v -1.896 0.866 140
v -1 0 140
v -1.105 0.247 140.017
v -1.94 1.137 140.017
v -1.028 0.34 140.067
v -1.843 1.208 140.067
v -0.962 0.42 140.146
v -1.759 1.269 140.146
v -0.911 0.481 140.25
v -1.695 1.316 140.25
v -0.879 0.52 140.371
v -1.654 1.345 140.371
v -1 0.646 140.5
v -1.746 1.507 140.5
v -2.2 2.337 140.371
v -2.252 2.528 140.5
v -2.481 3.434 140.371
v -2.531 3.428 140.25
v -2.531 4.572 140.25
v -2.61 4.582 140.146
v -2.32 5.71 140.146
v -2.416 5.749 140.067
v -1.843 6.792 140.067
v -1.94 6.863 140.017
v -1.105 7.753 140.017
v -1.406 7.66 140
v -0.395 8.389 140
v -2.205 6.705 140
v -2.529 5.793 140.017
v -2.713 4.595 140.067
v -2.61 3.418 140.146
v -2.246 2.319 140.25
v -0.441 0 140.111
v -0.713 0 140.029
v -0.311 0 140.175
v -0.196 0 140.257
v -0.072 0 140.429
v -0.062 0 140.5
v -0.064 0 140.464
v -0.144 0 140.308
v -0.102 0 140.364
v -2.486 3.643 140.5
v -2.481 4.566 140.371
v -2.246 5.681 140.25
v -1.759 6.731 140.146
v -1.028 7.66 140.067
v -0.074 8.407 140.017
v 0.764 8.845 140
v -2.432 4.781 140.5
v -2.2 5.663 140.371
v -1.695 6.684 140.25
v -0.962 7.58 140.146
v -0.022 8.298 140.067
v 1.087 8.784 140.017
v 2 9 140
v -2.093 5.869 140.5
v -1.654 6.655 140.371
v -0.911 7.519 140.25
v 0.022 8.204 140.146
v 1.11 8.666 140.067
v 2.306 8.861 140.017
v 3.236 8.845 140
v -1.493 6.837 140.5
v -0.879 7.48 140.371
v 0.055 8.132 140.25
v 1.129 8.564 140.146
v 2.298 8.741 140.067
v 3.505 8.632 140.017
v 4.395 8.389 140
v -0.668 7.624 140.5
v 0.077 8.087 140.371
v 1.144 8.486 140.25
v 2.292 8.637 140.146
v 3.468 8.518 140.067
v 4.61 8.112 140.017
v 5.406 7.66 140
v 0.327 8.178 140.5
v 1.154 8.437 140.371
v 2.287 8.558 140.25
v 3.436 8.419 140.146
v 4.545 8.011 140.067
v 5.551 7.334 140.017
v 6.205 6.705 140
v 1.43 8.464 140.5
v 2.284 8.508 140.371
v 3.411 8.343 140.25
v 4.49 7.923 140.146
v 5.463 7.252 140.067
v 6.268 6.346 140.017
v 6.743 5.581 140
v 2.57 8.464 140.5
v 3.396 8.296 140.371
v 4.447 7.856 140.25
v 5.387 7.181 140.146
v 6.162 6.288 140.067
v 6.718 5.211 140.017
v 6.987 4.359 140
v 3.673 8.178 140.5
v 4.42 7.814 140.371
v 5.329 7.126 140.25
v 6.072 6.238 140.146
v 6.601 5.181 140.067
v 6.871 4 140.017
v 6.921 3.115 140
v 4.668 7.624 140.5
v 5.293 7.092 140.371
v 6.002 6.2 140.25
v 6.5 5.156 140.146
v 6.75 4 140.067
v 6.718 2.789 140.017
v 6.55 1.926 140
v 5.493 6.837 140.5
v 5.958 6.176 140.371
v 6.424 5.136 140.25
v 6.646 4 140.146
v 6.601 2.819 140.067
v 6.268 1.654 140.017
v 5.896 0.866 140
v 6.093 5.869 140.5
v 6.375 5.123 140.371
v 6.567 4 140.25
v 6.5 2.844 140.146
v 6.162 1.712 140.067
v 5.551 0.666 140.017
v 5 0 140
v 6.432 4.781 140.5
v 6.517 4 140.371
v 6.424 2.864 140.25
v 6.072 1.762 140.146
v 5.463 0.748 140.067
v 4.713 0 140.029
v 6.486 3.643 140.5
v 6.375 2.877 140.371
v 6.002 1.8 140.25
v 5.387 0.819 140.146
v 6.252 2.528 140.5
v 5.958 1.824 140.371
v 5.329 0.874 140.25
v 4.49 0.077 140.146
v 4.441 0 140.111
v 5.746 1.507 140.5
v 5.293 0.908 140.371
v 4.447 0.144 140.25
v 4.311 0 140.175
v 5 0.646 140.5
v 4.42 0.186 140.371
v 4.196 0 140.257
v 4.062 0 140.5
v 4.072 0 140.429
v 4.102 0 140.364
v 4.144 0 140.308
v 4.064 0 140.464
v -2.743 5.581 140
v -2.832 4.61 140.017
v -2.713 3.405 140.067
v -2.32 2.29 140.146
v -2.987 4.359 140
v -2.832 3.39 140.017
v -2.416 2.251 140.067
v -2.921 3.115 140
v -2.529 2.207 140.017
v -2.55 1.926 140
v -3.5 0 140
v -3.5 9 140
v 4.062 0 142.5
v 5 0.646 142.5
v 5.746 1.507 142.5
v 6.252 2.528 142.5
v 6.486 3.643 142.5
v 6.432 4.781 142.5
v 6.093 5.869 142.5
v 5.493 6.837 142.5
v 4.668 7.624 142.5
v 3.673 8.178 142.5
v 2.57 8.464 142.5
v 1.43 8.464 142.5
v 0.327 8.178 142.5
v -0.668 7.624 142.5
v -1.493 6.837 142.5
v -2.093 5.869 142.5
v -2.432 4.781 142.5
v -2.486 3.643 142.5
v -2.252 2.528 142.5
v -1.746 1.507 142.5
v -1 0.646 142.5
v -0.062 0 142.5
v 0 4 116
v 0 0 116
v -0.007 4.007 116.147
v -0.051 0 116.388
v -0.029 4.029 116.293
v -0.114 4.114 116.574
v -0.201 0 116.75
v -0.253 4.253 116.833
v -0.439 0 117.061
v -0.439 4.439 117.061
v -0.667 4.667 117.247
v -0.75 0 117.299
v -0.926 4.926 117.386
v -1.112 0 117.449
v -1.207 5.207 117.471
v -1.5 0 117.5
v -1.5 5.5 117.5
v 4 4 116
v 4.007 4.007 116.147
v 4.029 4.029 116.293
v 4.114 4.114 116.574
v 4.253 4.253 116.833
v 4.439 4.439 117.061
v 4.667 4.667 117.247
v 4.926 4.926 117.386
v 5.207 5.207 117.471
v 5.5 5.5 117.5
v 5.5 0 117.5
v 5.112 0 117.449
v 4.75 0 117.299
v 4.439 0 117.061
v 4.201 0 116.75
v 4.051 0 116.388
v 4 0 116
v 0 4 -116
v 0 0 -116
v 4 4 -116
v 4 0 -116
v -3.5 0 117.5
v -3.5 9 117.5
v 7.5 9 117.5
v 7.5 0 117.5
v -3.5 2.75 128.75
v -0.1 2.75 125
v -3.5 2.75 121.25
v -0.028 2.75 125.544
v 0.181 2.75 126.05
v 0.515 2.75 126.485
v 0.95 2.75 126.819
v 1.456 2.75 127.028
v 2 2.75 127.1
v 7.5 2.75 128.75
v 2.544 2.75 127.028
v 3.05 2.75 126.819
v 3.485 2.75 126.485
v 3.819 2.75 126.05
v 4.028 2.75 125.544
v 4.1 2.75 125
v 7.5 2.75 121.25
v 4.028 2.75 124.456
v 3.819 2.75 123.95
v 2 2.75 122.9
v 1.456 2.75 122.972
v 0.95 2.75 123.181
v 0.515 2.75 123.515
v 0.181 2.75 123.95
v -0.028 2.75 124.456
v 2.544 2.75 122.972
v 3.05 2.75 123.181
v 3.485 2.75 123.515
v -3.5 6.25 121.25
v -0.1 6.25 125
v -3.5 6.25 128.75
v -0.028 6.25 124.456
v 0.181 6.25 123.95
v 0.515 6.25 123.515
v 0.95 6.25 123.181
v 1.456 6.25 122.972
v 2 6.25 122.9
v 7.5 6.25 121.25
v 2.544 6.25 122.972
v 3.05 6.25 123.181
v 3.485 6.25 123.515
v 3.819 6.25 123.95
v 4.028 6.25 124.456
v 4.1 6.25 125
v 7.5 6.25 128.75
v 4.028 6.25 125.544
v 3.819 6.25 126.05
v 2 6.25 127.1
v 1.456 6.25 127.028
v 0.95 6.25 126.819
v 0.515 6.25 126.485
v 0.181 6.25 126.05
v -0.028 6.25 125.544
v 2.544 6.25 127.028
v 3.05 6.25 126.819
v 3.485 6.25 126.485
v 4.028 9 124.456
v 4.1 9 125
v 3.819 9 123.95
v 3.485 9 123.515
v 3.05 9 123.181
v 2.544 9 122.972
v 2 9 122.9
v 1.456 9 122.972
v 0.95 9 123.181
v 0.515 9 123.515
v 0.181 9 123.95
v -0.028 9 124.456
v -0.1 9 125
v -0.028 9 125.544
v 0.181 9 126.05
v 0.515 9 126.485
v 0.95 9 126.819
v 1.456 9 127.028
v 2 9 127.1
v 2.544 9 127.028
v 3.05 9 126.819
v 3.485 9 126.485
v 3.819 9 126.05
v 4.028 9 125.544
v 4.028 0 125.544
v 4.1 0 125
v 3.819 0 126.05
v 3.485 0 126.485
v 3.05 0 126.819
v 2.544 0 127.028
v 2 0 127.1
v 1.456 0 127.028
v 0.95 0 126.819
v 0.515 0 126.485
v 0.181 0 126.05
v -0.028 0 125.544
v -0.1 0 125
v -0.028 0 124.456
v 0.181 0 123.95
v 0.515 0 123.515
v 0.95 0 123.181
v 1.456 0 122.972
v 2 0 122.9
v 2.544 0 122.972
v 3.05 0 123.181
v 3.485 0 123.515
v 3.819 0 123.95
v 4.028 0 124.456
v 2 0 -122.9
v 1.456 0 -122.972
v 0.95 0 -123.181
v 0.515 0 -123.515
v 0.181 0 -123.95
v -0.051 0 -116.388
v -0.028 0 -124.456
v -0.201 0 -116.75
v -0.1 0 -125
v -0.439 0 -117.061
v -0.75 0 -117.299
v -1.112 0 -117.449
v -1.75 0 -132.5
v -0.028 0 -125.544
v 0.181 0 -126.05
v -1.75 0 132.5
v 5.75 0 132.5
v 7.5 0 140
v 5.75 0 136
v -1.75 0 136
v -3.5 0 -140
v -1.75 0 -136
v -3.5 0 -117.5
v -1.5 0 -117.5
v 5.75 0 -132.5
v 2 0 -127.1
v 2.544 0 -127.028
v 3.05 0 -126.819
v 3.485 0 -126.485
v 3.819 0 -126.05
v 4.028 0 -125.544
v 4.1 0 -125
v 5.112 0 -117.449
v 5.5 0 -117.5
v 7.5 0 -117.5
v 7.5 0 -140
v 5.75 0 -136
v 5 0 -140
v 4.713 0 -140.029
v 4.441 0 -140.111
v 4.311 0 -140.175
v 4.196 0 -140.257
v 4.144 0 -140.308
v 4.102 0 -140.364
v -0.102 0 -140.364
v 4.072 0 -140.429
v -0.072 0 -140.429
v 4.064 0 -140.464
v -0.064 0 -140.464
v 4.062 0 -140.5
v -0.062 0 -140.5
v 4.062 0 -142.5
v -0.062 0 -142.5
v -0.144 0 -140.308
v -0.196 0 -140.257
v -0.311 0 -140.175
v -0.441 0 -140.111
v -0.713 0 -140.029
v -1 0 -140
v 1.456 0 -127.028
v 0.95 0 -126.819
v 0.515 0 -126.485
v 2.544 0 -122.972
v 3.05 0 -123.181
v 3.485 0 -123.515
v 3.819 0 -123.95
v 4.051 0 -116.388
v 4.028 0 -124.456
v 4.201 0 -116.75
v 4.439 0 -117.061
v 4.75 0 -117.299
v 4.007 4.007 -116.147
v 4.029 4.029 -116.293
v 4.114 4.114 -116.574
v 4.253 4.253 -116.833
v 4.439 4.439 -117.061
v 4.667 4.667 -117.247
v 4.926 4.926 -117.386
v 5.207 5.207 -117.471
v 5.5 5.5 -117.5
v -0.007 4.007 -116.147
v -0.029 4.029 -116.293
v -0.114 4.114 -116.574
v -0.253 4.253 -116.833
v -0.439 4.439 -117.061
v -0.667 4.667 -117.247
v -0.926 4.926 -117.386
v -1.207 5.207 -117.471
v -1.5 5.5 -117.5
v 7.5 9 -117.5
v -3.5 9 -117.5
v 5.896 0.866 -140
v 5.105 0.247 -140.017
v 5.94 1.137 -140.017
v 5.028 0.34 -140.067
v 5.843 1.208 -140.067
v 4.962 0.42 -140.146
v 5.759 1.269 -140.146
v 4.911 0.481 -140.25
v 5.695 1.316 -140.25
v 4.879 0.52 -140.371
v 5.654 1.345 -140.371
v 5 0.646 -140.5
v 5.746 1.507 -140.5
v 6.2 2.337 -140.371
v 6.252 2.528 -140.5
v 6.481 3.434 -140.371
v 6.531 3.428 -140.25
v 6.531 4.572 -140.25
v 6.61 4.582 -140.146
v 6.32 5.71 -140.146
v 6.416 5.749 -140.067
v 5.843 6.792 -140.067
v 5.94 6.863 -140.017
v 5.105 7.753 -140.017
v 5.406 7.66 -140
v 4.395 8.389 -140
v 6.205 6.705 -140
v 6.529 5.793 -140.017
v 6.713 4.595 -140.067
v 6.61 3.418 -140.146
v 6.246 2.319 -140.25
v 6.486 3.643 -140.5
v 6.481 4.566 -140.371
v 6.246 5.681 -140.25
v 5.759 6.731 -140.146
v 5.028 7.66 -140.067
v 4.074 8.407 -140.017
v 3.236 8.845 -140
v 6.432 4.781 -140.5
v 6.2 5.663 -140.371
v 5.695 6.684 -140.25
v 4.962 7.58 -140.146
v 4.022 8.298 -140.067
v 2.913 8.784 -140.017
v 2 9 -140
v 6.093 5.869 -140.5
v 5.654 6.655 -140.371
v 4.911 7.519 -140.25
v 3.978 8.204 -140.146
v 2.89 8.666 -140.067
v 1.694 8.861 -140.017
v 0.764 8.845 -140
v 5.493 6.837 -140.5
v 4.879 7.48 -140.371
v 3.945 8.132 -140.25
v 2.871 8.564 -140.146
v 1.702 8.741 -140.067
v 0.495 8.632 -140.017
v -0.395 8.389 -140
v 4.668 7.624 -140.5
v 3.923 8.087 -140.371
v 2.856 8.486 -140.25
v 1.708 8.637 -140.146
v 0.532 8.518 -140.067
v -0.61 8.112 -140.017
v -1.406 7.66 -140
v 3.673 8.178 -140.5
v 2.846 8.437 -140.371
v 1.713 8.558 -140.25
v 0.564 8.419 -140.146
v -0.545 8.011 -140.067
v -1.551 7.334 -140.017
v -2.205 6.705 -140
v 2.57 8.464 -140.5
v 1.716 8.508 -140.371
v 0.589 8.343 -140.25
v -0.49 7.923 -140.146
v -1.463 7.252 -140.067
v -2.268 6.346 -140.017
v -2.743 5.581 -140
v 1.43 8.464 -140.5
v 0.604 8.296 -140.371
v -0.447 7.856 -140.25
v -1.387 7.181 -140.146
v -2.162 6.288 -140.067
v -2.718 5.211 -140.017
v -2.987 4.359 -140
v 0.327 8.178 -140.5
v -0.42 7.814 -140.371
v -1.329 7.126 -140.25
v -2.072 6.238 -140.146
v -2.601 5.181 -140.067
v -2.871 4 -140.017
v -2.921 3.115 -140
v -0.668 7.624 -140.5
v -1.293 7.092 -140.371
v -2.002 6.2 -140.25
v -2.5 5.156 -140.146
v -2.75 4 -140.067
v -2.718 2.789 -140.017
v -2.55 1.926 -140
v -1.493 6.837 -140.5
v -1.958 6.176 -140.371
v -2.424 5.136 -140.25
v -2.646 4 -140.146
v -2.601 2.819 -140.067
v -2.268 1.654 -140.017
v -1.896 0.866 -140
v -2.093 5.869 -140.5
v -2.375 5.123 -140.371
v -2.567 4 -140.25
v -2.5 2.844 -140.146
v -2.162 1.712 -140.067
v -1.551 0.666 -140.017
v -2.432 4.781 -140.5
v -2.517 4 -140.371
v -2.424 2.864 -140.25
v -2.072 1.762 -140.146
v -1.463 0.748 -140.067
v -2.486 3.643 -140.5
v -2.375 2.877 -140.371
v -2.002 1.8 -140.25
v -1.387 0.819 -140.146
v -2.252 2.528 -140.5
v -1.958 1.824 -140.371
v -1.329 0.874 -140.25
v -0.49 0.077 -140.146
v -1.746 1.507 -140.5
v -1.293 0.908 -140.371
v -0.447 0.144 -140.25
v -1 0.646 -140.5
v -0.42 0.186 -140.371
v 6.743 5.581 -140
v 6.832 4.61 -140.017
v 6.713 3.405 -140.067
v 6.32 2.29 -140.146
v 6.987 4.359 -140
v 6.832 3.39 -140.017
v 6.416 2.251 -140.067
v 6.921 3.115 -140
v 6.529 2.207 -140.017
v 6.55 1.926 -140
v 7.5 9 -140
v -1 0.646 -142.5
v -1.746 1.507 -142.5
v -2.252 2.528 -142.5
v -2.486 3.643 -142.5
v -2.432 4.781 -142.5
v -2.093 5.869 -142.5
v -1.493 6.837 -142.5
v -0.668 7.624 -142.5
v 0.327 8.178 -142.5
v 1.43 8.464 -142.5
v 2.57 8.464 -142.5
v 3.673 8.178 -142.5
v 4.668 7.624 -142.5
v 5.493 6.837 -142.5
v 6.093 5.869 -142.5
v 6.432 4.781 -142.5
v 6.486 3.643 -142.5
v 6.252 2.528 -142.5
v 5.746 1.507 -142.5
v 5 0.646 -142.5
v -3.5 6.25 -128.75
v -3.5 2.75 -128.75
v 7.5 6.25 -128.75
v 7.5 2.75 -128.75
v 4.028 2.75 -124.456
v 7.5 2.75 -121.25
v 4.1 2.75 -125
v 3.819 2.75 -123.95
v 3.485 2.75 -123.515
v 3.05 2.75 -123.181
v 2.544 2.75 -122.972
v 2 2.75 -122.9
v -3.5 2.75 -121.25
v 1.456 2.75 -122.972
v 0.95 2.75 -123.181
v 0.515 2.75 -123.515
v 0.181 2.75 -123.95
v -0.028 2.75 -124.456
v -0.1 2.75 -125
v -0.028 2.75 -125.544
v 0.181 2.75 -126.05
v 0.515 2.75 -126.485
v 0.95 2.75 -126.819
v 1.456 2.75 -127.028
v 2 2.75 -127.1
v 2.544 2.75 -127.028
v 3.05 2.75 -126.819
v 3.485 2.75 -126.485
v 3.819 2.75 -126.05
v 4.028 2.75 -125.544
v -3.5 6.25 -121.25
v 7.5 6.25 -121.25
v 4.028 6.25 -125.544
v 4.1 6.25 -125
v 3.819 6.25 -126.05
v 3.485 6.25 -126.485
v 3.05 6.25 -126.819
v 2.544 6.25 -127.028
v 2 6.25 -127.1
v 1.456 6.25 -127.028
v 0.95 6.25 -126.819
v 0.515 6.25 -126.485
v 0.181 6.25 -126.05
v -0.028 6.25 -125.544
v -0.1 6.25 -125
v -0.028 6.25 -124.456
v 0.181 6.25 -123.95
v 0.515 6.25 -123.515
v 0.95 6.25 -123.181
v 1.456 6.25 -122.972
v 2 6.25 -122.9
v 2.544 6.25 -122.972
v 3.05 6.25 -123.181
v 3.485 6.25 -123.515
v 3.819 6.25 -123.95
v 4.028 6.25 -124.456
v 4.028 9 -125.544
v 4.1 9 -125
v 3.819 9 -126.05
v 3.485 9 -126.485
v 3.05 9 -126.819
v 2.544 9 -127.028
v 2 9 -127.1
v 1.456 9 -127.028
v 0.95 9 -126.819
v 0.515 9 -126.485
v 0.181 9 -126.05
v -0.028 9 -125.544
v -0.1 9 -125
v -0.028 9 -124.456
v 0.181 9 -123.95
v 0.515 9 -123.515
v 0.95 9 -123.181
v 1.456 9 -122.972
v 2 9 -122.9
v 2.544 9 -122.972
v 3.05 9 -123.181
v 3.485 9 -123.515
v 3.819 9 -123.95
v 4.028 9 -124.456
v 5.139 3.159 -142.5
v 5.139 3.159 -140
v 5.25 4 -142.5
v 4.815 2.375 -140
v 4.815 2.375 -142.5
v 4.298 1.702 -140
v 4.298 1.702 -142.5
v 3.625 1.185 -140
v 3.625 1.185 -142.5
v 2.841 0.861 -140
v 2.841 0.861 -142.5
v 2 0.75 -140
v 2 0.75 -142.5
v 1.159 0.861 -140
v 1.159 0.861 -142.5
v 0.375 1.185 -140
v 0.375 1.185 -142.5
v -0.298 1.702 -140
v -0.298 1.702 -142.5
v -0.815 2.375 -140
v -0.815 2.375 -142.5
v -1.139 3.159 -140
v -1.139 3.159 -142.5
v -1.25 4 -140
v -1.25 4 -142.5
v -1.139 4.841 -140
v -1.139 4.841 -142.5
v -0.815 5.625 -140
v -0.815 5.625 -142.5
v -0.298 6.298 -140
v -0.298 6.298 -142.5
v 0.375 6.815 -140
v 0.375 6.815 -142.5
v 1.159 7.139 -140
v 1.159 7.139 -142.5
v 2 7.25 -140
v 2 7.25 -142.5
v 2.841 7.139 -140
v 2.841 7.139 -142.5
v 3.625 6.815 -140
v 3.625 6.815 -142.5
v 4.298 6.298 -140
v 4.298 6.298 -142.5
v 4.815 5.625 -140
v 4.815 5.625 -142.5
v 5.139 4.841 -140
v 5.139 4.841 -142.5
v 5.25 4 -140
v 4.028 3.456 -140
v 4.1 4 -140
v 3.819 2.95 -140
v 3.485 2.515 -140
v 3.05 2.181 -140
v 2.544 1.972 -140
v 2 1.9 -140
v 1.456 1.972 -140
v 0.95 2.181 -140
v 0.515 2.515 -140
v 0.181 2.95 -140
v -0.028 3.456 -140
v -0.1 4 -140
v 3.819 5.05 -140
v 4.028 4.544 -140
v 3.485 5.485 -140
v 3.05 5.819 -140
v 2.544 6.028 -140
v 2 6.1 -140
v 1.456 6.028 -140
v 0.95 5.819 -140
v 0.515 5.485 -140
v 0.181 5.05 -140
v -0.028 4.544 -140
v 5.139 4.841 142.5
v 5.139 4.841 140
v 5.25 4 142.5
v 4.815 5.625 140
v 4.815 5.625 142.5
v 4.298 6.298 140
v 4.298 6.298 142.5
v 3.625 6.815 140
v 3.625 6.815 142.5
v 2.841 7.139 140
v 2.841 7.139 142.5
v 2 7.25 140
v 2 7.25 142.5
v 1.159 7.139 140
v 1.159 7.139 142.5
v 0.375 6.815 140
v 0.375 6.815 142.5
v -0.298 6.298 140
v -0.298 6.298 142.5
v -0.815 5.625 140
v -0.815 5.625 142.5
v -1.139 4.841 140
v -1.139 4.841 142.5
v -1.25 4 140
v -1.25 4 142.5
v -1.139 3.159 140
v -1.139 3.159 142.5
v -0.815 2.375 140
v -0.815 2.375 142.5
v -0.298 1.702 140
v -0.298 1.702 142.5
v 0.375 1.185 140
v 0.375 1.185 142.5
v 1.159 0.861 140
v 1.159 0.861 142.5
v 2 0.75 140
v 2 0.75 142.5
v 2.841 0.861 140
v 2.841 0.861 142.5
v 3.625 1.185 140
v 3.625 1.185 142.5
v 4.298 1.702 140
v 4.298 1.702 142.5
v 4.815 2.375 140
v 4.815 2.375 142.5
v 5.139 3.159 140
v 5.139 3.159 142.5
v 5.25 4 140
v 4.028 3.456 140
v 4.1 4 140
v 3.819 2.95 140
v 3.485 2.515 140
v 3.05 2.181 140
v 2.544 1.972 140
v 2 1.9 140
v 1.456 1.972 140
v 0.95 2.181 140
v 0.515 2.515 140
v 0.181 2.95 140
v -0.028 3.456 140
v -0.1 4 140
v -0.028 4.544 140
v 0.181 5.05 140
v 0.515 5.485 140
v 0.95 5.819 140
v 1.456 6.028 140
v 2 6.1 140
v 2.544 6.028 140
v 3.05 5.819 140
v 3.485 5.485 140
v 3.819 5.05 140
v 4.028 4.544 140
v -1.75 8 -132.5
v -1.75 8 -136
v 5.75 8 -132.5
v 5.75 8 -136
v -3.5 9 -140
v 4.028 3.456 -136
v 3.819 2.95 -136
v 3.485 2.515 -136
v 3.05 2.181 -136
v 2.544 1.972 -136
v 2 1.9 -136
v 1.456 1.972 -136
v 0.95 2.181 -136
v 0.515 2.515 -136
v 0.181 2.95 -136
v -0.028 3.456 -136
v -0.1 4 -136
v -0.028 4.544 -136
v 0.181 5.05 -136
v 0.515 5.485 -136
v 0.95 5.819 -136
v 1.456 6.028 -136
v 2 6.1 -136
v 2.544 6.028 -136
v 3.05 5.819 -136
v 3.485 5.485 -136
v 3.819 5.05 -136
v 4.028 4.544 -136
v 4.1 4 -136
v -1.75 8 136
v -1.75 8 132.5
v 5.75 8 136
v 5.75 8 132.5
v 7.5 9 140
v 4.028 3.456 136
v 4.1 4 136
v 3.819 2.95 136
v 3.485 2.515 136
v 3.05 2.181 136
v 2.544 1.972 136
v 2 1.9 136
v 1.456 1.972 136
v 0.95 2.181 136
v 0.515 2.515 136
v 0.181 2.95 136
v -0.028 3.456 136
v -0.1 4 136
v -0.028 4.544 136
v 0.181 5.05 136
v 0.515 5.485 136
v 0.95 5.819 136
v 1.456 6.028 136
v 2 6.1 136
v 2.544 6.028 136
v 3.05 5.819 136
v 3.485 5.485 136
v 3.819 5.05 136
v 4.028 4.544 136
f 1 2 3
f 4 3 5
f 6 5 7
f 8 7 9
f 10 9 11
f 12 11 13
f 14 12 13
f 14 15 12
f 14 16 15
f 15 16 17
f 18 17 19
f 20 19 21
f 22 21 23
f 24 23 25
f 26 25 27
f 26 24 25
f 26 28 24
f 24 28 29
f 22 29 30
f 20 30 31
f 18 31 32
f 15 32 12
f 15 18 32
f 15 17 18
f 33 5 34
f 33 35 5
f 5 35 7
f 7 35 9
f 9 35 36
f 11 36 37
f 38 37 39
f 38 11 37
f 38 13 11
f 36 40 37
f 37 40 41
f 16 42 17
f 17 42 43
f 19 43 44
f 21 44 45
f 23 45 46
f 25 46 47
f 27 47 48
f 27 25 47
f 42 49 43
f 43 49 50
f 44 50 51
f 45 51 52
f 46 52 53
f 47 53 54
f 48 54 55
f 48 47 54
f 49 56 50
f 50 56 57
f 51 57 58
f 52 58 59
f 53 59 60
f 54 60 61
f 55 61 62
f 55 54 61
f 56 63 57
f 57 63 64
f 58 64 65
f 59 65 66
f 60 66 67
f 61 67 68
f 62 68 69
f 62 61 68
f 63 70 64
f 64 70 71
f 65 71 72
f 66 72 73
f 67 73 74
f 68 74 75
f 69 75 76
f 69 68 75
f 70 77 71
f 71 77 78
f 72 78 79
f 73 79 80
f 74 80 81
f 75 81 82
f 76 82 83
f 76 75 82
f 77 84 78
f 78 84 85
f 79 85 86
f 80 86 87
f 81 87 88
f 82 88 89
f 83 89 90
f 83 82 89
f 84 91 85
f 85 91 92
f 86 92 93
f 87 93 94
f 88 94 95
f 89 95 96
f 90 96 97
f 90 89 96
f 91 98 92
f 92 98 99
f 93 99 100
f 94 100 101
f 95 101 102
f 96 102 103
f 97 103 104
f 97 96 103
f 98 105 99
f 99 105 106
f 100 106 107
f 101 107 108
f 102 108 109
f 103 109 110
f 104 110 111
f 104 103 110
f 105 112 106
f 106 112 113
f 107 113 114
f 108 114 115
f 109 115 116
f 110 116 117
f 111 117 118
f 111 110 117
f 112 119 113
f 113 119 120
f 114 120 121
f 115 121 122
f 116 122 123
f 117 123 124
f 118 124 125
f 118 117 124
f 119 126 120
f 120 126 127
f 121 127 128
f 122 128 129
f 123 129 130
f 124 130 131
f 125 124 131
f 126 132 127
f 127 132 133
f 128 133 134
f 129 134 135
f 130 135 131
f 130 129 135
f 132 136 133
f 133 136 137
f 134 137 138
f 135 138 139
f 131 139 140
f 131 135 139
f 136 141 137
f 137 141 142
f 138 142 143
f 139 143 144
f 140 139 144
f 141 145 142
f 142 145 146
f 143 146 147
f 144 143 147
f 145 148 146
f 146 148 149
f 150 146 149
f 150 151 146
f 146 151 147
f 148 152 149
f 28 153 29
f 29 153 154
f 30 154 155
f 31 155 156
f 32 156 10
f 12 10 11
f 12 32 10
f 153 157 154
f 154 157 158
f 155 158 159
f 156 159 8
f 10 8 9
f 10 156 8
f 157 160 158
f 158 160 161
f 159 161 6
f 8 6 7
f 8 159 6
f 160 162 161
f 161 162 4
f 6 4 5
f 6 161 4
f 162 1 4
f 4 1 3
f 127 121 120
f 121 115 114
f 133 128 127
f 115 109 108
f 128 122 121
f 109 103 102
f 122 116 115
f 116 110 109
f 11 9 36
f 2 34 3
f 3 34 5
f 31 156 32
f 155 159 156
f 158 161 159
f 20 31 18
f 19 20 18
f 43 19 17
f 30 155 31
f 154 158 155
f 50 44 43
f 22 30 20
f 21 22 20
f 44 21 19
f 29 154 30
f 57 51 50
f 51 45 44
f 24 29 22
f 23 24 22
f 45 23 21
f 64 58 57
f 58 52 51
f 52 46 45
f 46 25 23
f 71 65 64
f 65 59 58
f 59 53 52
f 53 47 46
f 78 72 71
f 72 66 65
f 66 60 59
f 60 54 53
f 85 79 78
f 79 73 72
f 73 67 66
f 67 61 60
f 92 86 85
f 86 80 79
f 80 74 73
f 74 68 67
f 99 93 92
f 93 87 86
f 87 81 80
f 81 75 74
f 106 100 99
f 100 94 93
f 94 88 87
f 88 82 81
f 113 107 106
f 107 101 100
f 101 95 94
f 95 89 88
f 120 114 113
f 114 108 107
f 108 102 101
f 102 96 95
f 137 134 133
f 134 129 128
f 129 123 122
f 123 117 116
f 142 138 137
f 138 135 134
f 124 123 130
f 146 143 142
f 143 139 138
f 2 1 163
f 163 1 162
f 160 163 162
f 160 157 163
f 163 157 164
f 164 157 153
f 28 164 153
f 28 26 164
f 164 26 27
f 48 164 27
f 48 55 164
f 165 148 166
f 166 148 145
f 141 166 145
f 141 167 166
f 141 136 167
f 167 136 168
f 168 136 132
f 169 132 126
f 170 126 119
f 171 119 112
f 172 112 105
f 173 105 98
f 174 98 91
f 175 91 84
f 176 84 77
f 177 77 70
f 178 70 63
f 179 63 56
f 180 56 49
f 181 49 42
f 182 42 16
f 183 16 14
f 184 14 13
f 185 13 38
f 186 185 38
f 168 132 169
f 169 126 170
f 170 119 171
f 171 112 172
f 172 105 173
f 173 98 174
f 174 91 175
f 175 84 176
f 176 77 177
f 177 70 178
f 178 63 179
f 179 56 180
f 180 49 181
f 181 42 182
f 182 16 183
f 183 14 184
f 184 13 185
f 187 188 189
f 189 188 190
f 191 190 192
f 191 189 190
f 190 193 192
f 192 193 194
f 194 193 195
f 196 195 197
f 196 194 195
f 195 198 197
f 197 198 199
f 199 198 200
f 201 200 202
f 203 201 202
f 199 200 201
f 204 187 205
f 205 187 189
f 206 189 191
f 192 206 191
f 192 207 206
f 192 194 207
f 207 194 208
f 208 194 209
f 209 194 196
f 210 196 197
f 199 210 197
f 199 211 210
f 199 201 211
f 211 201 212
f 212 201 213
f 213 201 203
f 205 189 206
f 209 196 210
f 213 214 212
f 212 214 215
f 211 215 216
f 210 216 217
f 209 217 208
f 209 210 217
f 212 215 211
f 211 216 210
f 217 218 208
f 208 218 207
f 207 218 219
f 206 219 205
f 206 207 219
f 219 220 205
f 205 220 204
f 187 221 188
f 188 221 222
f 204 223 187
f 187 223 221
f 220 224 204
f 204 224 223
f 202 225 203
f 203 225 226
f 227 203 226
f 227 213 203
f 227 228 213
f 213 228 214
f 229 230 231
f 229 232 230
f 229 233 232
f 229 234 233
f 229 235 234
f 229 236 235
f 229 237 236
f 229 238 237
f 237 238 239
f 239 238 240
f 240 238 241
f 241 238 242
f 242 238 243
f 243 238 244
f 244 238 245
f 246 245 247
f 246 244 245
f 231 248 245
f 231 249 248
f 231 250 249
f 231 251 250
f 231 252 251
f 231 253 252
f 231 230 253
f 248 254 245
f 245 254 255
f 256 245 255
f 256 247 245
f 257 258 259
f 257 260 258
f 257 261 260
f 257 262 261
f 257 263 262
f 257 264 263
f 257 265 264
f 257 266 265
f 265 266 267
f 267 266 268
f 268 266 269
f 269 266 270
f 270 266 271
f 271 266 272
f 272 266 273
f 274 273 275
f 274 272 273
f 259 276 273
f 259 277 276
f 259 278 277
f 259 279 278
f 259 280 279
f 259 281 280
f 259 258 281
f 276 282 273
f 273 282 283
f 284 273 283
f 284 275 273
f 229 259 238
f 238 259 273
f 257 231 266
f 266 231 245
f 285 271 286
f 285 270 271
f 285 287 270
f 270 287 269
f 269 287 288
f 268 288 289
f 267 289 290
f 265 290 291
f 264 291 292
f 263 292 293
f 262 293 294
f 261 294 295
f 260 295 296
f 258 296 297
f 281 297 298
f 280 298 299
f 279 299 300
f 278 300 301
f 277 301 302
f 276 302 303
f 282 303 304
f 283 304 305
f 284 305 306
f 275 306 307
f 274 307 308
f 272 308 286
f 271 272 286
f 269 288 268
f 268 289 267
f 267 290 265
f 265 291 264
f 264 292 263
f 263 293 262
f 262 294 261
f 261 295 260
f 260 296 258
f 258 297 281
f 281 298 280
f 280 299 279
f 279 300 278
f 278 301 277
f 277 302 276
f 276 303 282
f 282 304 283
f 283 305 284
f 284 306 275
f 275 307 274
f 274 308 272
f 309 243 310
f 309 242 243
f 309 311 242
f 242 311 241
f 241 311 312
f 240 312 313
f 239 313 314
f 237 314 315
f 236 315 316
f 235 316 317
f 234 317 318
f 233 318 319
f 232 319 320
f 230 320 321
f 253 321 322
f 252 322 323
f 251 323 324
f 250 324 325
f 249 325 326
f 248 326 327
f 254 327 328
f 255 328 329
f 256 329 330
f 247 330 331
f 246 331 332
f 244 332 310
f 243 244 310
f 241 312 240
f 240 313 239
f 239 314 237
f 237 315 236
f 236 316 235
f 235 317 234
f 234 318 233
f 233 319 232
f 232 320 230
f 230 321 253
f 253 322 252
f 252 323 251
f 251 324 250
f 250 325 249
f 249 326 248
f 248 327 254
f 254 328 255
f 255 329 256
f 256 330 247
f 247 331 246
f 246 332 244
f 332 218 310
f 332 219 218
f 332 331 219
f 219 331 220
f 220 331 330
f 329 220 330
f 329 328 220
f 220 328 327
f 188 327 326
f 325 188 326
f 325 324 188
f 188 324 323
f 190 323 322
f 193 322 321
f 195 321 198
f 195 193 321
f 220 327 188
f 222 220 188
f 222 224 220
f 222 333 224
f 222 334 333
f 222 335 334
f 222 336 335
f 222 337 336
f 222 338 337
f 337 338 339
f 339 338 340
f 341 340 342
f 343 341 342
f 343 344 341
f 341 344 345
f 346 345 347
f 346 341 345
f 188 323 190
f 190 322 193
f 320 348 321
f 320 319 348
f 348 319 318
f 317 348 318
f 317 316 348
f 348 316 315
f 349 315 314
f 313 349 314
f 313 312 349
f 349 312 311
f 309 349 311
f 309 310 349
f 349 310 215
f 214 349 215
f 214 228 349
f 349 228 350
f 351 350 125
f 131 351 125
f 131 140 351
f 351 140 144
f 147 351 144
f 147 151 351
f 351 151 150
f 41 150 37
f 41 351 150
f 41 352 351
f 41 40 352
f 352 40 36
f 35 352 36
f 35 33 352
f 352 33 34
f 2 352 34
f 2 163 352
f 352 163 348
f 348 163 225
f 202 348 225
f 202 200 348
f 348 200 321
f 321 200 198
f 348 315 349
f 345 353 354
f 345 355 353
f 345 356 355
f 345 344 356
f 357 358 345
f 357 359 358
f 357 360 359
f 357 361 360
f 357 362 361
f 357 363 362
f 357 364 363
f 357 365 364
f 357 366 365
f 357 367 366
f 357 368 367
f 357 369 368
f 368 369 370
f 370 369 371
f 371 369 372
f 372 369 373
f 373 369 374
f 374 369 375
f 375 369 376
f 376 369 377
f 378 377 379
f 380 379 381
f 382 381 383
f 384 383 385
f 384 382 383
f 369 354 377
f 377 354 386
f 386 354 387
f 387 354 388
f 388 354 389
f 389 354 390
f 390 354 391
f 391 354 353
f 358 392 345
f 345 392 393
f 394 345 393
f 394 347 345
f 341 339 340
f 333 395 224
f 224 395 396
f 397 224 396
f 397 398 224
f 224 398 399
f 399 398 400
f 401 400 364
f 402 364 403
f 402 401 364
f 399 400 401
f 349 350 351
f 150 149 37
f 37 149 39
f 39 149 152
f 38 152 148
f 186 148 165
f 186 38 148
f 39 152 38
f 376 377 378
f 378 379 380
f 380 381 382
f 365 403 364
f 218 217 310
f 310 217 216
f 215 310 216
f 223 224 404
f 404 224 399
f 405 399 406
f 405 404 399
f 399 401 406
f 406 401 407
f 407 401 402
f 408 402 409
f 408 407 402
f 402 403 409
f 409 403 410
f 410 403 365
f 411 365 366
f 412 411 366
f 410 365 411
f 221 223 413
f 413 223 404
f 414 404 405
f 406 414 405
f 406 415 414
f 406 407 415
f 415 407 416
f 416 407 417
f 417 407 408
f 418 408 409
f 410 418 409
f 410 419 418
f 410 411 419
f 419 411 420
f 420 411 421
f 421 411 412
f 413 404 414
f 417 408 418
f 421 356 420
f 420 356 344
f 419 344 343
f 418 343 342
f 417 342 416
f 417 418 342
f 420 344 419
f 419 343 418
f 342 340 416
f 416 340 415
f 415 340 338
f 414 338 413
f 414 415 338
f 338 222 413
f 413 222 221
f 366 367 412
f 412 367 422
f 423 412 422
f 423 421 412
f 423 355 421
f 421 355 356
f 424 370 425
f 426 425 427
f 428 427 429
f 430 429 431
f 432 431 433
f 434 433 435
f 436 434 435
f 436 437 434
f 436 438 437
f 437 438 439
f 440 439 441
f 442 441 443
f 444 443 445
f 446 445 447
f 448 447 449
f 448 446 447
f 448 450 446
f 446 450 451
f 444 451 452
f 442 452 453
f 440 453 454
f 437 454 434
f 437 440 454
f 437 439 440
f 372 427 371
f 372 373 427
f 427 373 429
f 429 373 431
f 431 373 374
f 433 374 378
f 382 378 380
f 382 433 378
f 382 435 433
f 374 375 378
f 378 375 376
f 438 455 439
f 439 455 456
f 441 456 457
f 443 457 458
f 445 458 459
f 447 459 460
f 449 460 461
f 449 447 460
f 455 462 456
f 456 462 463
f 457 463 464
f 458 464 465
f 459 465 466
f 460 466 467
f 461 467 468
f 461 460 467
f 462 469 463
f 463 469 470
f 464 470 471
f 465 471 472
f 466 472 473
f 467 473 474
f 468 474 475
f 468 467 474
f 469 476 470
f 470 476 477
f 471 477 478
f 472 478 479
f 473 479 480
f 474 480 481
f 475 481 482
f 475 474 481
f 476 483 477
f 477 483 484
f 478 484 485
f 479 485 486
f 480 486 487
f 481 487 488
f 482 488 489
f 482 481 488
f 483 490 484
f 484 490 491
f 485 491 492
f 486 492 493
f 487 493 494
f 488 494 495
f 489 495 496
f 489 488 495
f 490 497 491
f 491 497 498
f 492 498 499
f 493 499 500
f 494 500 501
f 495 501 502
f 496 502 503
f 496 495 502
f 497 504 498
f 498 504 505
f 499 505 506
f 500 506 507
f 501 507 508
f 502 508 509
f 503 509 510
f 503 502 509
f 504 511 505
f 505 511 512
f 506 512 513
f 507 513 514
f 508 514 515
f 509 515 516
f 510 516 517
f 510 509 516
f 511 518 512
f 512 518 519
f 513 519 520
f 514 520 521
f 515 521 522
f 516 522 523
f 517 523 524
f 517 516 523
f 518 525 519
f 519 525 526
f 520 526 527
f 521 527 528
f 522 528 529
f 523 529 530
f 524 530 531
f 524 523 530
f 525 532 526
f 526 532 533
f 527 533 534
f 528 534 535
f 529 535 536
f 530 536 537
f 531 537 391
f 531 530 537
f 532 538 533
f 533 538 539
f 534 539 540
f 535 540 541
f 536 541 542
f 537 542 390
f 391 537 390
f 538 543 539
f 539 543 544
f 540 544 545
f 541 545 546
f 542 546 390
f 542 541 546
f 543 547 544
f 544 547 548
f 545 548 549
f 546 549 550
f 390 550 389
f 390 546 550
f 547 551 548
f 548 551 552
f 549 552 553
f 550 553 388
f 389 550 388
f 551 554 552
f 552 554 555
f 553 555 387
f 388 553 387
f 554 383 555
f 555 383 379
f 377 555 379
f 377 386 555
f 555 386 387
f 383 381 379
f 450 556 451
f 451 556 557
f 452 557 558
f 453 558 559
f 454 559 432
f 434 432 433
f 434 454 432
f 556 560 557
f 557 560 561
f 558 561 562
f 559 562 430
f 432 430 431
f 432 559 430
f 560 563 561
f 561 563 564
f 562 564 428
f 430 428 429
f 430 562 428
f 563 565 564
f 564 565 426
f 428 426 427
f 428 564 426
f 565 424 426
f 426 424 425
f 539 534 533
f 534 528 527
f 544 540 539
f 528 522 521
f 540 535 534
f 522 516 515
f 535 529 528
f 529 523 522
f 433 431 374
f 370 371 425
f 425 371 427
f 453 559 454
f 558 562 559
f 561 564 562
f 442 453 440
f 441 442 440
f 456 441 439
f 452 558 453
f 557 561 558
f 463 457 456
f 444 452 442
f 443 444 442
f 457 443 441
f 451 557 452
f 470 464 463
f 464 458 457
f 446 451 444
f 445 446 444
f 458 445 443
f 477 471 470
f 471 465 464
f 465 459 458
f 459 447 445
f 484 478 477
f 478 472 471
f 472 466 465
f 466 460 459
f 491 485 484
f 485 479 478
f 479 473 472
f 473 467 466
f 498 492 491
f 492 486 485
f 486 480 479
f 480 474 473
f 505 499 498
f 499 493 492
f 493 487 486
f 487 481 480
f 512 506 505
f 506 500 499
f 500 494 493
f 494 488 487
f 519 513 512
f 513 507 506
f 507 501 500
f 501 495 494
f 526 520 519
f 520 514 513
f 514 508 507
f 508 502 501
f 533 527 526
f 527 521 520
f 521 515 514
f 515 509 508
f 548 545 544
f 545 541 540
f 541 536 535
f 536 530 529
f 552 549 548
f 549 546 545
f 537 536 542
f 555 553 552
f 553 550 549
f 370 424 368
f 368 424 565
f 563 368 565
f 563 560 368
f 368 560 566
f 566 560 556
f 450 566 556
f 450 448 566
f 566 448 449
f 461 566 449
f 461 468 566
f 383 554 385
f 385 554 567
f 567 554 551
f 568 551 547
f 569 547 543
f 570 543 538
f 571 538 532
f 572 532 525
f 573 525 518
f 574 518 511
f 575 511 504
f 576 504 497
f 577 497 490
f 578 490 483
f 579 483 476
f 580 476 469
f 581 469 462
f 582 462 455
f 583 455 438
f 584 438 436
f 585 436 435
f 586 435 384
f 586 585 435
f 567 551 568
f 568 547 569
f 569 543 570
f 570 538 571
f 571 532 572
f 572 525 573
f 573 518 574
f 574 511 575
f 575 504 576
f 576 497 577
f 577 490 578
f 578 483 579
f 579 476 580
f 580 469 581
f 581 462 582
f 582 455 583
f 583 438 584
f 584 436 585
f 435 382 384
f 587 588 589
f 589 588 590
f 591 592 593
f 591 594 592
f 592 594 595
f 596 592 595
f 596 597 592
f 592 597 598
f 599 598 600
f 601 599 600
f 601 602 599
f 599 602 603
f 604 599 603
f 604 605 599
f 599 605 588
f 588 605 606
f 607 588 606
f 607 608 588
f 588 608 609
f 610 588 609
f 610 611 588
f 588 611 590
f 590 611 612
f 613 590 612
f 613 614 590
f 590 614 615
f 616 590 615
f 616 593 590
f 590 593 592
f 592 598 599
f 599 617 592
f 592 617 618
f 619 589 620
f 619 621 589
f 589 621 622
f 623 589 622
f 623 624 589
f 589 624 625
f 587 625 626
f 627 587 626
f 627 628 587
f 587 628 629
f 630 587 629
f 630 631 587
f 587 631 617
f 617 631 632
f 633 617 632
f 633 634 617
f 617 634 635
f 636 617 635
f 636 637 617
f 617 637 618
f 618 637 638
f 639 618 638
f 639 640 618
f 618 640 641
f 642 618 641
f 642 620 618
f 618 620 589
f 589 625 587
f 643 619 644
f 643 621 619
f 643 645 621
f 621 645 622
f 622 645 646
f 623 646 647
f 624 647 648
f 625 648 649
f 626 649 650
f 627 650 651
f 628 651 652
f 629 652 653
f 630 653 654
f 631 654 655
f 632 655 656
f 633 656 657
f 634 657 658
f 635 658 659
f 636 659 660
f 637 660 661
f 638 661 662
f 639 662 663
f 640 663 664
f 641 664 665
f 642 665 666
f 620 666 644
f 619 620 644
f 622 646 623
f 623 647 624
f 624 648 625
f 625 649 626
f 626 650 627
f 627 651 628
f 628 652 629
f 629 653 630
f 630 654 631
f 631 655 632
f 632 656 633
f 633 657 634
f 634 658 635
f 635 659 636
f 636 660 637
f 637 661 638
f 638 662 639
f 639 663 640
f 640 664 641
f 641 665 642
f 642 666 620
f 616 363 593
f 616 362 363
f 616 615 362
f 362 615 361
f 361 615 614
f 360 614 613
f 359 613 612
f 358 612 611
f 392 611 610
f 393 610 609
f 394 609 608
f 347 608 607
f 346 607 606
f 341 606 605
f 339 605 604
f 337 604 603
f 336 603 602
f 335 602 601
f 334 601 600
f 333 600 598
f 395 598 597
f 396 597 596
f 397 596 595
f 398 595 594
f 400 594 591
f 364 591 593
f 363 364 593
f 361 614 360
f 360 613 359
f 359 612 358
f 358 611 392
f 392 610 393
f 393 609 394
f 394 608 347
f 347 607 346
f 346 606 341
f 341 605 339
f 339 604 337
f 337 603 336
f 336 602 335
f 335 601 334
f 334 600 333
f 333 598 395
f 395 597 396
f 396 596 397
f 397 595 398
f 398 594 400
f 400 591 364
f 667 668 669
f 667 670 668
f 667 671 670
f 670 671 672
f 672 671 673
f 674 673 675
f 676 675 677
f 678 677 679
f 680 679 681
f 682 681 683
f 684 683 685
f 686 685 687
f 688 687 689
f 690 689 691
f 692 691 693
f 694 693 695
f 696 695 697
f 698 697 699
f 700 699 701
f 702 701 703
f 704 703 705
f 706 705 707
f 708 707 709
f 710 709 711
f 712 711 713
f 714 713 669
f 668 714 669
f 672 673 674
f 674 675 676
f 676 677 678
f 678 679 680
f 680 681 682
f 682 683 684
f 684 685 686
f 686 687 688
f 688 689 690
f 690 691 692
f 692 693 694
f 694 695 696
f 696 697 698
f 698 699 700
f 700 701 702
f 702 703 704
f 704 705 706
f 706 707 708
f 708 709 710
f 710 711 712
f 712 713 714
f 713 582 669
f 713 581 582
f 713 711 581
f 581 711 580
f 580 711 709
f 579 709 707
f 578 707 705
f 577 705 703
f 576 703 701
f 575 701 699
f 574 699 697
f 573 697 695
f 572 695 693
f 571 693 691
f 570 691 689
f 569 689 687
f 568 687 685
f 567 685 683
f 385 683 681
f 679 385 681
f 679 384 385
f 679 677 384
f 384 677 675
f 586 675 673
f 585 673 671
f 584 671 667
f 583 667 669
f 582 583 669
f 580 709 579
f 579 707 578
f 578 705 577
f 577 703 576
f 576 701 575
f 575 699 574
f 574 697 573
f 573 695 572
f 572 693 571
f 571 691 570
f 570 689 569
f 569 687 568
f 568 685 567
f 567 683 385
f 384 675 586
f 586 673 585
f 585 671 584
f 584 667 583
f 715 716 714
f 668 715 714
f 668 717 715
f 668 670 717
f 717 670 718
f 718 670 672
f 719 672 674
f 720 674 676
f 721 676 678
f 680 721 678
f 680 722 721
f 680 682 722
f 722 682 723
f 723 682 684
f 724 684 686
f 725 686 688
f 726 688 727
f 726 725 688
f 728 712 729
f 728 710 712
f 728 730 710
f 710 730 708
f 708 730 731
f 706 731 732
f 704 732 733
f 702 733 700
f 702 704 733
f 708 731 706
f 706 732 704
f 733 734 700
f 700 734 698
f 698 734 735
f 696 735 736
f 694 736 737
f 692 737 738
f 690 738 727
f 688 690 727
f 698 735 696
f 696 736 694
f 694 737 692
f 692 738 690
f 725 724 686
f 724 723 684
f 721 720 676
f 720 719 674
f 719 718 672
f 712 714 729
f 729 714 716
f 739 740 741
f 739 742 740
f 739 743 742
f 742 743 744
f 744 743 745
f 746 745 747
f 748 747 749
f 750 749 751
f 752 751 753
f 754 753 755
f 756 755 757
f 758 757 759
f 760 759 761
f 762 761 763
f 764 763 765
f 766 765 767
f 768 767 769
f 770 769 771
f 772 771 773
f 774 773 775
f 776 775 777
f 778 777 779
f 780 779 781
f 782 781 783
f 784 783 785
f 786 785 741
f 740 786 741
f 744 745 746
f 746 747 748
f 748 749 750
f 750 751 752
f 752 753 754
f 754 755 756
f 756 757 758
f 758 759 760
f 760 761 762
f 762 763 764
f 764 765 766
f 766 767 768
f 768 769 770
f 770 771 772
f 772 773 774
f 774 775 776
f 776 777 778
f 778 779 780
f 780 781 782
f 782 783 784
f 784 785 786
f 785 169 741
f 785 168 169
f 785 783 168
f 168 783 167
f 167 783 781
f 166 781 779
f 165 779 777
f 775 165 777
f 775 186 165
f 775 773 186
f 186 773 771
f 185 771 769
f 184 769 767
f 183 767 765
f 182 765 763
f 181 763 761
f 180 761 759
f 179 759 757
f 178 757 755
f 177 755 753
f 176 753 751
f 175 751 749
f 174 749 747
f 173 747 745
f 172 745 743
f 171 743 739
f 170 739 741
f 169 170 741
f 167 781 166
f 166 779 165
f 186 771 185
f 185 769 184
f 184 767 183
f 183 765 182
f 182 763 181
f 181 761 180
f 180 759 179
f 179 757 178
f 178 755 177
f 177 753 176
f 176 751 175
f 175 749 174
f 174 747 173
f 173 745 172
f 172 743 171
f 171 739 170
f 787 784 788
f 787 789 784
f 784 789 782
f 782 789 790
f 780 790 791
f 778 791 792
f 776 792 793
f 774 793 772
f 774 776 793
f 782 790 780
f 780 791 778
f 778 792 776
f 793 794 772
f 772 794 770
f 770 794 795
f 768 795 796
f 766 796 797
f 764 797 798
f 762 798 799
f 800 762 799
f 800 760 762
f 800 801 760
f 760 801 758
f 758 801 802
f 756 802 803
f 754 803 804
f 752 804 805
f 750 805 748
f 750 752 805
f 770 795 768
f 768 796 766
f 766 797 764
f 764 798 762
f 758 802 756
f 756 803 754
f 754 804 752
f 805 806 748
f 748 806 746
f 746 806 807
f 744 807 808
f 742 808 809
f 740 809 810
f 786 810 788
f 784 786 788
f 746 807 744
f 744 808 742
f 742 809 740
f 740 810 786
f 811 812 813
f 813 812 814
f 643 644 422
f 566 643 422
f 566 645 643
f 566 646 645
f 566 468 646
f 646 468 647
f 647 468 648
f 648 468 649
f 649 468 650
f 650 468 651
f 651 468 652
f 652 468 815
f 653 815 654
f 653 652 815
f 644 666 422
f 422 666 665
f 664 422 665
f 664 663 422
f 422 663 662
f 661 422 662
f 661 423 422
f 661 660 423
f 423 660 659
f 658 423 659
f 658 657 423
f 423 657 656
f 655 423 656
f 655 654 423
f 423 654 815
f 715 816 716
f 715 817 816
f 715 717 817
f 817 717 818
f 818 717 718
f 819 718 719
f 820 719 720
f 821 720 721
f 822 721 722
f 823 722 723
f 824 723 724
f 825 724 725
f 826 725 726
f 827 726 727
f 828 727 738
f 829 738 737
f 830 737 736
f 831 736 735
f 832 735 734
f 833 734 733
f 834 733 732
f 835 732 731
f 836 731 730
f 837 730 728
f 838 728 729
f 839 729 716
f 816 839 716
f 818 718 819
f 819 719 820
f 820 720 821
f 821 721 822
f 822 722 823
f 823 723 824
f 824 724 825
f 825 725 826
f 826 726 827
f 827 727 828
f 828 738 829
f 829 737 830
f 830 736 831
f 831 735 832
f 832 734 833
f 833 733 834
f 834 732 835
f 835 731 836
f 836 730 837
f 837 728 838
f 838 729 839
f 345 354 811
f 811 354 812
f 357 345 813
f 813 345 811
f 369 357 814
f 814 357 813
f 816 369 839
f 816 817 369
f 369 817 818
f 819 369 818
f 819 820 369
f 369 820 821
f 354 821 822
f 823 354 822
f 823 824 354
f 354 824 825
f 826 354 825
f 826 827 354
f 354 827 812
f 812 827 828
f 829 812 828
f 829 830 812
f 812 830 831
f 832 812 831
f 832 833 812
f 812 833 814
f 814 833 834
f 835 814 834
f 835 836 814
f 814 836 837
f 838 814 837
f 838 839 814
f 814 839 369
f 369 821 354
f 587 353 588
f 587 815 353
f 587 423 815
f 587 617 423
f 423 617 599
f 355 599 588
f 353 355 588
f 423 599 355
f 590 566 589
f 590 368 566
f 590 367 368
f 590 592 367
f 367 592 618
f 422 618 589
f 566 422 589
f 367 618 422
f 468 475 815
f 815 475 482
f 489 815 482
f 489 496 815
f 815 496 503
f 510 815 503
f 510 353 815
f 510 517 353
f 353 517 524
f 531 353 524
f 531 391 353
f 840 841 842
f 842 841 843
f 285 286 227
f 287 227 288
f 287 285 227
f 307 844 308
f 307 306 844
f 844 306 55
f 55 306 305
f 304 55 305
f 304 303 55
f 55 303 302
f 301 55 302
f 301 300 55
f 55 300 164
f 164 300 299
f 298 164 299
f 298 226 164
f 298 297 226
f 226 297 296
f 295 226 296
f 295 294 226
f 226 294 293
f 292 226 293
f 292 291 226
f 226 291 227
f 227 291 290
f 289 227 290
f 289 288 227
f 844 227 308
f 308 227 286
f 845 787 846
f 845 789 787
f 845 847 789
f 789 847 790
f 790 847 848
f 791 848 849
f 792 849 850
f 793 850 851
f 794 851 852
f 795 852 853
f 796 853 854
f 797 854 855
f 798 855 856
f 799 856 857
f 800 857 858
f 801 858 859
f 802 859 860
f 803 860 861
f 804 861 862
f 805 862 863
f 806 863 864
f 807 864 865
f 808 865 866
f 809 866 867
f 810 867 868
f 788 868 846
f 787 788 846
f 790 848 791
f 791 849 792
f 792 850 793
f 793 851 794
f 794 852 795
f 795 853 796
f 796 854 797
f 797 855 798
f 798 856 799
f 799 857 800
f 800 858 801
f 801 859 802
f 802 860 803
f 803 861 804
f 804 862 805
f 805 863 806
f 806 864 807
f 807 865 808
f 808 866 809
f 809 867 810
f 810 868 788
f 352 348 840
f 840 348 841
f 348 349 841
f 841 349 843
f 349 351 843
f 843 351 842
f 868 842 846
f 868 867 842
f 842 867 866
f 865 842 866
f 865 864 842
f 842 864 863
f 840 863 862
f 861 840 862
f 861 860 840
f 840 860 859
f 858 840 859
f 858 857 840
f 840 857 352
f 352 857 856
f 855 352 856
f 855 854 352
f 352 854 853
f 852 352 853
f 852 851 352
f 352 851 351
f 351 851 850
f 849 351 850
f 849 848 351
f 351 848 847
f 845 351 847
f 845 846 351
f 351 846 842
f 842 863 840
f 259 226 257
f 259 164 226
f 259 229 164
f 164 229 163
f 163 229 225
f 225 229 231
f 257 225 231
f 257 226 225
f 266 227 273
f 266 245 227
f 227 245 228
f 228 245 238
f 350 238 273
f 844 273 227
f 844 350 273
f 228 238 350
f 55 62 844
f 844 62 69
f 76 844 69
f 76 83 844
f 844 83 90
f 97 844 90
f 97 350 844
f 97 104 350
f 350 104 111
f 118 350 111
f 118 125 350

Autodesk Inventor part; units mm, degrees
ref_plane "YZ Plane" through (0, 0, 0) normal (1, 0, 0) x (0, 1, 0)
ref_plane "XZ Plane" through (0, 0, 0) normal (0, 1, 0) x (-1, 0, 0)
ref_plane "XY Plane" through (0, 0, 0) normal (0, 0, 1) x (1, 0, 0)
sketch "Sketch1" plane through (0, 0, 0) normal (0, 0, 1) x (1, 0, 0)
  line L0 (0, 0) -> (4, 0)
  line L1 (4, 0) -> (4, 4)
  line L2 (4, 4) -> (0, 4)
  line L3 (0, 4) -> (0, 0)
  dimension "d0" = 4
  dimension "d1" = 4
extrude "Extrusion1" add sketch "Sketch1" along normal blind 128.5
sketch "Sketch3" plane through (0, 0, 128.5) normal (0, 0, 1) x (1, 0, 0)
  line L0 (0, 0) -> (4, 0) projected
  line L1 (-3.5, 0) -> (7.5, 0)
  line L2 (7.5, 0) -> (7.5, 8)
  line L3 (7.5, 8) -> (-3.5, 8)
  line L4 (-3.5, 8) -> (-3.5, 0)
  point P0 (2, 0)
  dimension "d4" = 11
  dimension "d5" = 8
extrude "Extrusion2" add sketch "Sketch3" along normal blind 11.5
sketch "Sketch4" plane through (0, 0, 0) normal (0, -1, 0) x (1, 0, 0)
  line L0 (7.5, 128.5) -> (7.5, 140) projected
  line L1 (-3.5, 140) -> (7.5, 140) projected
  line L2 (-1.75, 136) -> (5.75, 136)
  line L3 (5.75, 136) -> (5.75, 132.5)
  line L4 (5.75, 132.5) -> (-1.75, 132.5)
  line L5 (-1.75, 132.5) -> (-1.75, 136)
  point P0 (2, 136)
  point P1 (2, 140)
  point P2 (5.75, 134.25)
  point P3 (7.5, 134.25)
  dimension "d8" = 7.5
  dimension "d9" = 3.5
extrude "Extrusion3" cut sketch "Sketch4" against normal blind 8
sketch "Sketch5" plane through (0, 0, 140) normal (0, 0, 1) x (1, 0, 0)
  circle A0 centre (2, 4) radius 2.1
  point P0 (0, 0)
  dimension "d12" = 4.2
extrude "Extrusion4" cut sketch "Sketch5" against normal up to surface (7.5 mm away)
sketch "Sketch6" plane through (-3.5, 8, 128.5) normal (0, 1, 0) x (1, 0, 0)
  line L0 (11, 0) -> (0, 0) projected
  line L1 (0, 0) -> (0, -11.5) projected
  line L2 (11, -11.5) -> (0, -11.5) projected
  line L3 (11, 0) -> (11, -11.5) projected
  point P0 (3.5, 128.5)
extrude "Extrusion5" add sketch "Sketch6" along normal blind 1
mirror "Mirror2" about plane through (0, 0, 0) normal (0, 0, 1) of "Extrusion1", "Extrusion5", "Extrusion2", "Extrusion3", "Extrusion4"
sketch "Sketch7" plane through (0, 0, 140) normal (0, 0, 1) x (1, 0, 0)
  line L0 (-3.5, 0) -> (7.5, 0) projected
  arc A0 (4.0616, 0) -> (-0.0616, 0) centre (2, 4) ccw
  line L1 (0, 0) -> (-0.0616, 0)
  line L2 (-0.0616, 0) -> (4.0616, 0)
  circle A1 centre (2, 4) radius 3.25
  dimension "d17" = 9
  dimension "d18" = 6.5
extrude "Extrusion6" add sketch "Sketch7" along normal blind 2.5
sketch "Sketch8" plane through (-3.5, 8, 128.5) normal (0, -1, 0) x (1, 0, 0)
  line L0 (1.75, 7.5) -> (1.75, 4) projected
  line L1 (1.75, 4) -> (9.25, 4) projected
  line L2 (9.25, 4) -> (9.25, 7.5) projected
  line L3 (9.25, 7.5) -> (1.75, 7.5) projected
  point P0 (3.5, -128.5)
mirror "Mirror3" about plane through (0, 0, 0) normal (0, 0, 1) of "Extrusion6"
sketch "Sketch10" plane through (-3.5, 9, -128.5) normal (0, 1, 0) x (1, 0, 0)
  line L0 (0, 0) -> (11, 0)
  line L1 (11, 0) -> (11, -9)
  line L2 (11, -9) -> (0, -9)
  line L3 (0, -9) -> (0, 0)
  point P0 (3.5, -128.5)
  dimension "d21" = 9
extrude "Extrusion7" add sketch "Sketch10" against normal up to surface (9 mm away)
sketch "Sketch11" plane through (-3.5, 9, -140) normal (0, 1, 0) x (1, 0, 0)
  line L0 (11, -20.5) -> (0, -20.5) projected
  circle A0 centre (5.5, -15) radius 2.1
  point P0 (3.5, -140)
  dimension "d24" = 4.2
  dimension "d25" = 5.5
extrude "Extrusion8" cut sketch "Sketch11" against normal blind 11
sketch "Sketch12" plane through (-3.5, 0, -140) normal (-1, 0, 0) x (0, 0, 1)
  line L0 (20.5, 9) -> (20.5, 0) projected
  line L1 (18.75, 6.25) -> (11.25, 6.25)
  line L2 (11.25, 6.25) -> (11.25, 2.75)
  line L3 (11.25, 2.75) -> (18.75, 2.75)
  line L4 (18.75, 2.75) -> (18.75, 6.25)
  point P0 (140, 0)
  point P1 (18.75, 4.5)
  point P2 (20.5, 4.5)
  dimension "d28" = 7.5
  dimension "d29" = 3.5
  dimension "d30" = 1.75
extrude "Extrusion9" cut sketch "Sketch12" against normal blind 11
fillet "Fillet3" radius 0.5 1 edges at (2, 8.5, -140)
sketch "Sketch14" plane through (-3.5, 9, -119.5) normal (0, 0, 1) x (1, 0, 0)
  line L0 (7.5, -9) -> (7.5, -5) projected
  line L1 (7.5, -9) -> (11, -9) projected
  line L2 (11, 0) -> (11, -9) projected
  line L3 (11, 0) -> (0, 0) projected
  line L4 (0, 0) -> (0, -9) projected
  line L5 (0, -9) -> (3.5, -9) projected
  line L6 (3.5, -5) -> (3.5, -9) projected
  line L7 (7.5, -5) -> (3.5, -5) projected
extrude "Extrusion10" add sketch "Sketch14" along normal blind 2
fillet "Fillet4" radius 1.5 3 edges at (4, 2, -117.5) (2, 4, -117.5) (0, 2, -117.5)
mirror "Mirror5" about plane through (0, 0, 0) normal (0, 0, 1) of "Extrusion7", "Extrusion8", "Extrusion9", "Extrusion10"
fillet "Fillet5" radius 1.5 3 edges at (0, 2, 117.5) (2, 4, 117.5) (4, 2, 117.5)
fillet "Fillet6" radius 0.5 1 edges at (2, 8.5, 140)
properties part number "Axle280mm"
